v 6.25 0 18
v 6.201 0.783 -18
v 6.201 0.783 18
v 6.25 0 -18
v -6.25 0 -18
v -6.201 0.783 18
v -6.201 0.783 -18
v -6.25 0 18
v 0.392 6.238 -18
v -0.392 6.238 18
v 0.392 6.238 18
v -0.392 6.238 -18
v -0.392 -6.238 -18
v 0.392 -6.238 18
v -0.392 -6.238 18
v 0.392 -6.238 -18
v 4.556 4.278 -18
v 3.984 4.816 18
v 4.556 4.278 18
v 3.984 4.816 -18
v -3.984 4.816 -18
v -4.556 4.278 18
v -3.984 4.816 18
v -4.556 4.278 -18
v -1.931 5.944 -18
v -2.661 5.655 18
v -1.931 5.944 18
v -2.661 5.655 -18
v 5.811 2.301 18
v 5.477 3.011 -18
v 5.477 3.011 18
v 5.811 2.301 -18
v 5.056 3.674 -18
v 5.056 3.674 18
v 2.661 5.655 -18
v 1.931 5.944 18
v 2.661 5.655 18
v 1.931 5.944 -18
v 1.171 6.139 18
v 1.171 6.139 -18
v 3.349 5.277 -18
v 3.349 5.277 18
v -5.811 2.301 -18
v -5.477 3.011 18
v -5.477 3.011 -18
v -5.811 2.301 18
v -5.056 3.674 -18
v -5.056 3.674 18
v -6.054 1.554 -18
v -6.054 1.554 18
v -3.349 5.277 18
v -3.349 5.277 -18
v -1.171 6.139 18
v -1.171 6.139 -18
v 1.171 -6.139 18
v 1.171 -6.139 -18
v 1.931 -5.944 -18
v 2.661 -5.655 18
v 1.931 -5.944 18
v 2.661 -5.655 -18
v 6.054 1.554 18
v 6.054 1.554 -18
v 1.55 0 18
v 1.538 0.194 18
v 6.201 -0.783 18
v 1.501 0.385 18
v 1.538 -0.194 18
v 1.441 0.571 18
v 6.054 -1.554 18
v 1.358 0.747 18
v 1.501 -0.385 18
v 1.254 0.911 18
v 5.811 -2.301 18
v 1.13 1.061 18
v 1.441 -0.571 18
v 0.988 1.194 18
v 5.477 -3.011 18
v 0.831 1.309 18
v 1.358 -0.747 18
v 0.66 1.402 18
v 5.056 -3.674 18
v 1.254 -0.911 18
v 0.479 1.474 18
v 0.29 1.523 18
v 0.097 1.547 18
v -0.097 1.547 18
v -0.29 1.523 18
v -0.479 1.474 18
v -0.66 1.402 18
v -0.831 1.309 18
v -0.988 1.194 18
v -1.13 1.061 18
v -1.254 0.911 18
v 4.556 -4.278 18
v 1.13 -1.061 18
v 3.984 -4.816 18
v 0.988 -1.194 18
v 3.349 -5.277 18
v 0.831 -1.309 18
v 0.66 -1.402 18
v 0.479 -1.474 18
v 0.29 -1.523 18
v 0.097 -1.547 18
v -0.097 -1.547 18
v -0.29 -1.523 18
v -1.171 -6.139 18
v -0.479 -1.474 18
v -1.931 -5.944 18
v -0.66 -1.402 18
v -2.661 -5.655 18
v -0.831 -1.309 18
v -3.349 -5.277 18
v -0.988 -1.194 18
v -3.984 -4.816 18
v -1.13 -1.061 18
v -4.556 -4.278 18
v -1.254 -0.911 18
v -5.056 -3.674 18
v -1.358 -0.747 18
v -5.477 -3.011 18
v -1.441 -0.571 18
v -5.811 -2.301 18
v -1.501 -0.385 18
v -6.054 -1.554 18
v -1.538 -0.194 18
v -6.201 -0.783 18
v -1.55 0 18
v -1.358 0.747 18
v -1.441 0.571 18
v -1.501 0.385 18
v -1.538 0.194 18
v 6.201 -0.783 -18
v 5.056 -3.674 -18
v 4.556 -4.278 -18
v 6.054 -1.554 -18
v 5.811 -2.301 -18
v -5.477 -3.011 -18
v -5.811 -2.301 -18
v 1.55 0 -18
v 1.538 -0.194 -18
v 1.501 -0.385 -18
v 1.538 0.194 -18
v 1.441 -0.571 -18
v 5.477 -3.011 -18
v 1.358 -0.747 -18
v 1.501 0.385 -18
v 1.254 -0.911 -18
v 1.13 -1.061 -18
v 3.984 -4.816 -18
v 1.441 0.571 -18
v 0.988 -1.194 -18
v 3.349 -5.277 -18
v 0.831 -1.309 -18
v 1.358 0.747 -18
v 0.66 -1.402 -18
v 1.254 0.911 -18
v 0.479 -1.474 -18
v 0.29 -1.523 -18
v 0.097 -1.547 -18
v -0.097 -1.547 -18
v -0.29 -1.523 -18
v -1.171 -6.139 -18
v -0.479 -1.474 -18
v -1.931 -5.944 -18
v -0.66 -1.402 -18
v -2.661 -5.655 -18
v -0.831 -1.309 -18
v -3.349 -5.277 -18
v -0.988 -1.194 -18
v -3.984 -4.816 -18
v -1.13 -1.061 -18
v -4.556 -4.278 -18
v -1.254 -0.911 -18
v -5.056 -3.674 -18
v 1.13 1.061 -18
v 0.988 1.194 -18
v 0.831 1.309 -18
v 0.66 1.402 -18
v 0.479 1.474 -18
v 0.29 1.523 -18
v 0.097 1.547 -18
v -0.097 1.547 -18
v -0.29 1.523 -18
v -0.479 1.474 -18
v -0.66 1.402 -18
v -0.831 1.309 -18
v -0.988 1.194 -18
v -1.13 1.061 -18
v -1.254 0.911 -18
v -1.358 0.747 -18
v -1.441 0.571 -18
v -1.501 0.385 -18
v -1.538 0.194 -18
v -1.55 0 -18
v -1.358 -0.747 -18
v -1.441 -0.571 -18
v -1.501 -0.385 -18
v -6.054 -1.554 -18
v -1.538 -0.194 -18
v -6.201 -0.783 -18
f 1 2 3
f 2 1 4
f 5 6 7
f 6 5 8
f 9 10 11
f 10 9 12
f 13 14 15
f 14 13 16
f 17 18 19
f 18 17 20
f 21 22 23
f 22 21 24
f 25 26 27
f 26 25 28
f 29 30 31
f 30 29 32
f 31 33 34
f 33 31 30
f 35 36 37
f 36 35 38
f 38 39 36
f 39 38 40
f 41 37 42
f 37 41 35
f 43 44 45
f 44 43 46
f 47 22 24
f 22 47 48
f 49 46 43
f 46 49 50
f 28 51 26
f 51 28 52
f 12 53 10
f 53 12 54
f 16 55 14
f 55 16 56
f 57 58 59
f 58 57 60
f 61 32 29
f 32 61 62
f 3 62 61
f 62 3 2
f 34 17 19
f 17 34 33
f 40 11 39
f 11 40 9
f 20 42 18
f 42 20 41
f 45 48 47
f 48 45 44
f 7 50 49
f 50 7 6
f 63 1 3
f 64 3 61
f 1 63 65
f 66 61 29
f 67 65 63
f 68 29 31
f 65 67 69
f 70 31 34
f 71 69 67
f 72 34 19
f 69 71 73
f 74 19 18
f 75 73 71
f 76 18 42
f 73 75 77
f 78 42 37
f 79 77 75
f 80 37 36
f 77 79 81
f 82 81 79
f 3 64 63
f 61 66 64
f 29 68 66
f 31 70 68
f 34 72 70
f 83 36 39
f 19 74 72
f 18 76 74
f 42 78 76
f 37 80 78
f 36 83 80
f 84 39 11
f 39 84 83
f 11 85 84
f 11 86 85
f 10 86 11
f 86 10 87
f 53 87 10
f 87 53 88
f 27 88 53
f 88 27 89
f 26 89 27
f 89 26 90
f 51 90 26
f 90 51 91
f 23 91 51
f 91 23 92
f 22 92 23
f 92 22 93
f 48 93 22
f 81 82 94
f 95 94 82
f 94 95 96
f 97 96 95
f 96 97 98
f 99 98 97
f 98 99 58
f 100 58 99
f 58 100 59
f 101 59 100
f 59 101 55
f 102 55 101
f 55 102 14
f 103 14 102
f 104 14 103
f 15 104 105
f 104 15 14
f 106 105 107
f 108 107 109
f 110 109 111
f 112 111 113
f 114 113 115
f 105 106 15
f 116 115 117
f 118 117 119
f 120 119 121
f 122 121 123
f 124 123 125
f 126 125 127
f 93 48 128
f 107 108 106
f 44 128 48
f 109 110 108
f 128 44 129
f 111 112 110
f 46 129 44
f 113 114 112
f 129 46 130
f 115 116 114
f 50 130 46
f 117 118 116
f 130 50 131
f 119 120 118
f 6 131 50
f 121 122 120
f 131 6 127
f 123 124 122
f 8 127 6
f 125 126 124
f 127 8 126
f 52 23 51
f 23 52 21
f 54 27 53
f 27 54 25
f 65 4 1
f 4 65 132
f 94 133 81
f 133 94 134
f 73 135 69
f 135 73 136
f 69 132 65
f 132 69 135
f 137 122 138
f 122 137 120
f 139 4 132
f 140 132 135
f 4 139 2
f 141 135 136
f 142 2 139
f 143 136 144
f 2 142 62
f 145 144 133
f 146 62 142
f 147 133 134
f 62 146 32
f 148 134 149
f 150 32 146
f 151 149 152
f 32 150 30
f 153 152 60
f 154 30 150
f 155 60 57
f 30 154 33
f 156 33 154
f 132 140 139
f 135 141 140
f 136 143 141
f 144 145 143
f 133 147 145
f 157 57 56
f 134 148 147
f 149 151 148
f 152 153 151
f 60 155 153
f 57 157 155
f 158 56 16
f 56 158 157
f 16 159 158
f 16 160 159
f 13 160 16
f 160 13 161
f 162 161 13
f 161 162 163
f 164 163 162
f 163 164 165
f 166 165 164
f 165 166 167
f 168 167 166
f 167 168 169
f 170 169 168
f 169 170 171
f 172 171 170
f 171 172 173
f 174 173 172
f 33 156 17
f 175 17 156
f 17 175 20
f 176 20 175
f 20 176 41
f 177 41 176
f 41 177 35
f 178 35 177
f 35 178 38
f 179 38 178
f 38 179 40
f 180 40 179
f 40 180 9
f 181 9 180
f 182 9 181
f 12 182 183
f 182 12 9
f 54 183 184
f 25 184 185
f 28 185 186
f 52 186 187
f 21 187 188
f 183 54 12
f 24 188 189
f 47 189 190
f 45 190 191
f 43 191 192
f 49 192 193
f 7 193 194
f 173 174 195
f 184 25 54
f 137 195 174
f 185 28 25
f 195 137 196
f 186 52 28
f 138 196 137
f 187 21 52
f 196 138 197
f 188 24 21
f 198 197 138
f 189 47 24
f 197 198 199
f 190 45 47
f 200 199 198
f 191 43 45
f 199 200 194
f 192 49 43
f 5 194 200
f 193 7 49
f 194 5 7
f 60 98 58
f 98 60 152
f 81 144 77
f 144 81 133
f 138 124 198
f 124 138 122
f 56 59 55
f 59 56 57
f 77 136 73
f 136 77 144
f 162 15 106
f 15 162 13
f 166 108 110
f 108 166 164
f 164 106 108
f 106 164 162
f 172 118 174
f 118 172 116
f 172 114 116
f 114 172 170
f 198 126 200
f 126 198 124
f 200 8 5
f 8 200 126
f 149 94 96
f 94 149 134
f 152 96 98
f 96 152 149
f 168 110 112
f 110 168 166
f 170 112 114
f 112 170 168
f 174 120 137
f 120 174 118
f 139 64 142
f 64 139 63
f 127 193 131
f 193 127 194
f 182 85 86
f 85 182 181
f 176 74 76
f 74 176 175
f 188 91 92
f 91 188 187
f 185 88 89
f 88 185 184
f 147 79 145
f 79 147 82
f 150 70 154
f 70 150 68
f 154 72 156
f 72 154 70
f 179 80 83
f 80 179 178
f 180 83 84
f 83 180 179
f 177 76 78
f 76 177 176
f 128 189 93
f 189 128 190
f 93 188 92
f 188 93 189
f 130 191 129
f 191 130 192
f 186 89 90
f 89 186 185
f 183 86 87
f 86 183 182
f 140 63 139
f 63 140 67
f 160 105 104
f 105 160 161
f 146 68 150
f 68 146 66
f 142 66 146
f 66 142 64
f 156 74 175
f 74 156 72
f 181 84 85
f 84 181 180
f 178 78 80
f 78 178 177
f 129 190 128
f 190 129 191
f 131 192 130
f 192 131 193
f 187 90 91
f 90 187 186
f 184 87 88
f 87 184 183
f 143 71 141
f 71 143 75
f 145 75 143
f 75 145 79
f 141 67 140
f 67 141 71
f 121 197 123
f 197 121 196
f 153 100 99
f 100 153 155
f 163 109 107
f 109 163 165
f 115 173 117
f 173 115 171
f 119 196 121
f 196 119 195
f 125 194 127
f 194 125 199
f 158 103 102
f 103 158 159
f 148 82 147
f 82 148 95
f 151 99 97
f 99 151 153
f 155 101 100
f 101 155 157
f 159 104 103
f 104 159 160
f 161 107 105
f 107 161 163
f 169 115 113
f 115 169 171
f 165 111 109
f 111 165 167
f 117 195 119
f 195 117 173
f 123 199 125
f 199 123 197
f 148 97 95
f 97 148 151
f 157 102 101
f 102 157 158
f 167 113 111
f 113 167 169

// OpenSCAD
$fn = 50;


difference() {
	union() {
		translate(v = [0, 0, -18.0000000000]) {
			cylinder(h = 36, r = 6.2500000000);
		}
	}
	union() {
		translate(v = [0, 0, -100.0000000000]) {
			cylinder(h = 200, r = 1.5500000000);
		}
	}
}
